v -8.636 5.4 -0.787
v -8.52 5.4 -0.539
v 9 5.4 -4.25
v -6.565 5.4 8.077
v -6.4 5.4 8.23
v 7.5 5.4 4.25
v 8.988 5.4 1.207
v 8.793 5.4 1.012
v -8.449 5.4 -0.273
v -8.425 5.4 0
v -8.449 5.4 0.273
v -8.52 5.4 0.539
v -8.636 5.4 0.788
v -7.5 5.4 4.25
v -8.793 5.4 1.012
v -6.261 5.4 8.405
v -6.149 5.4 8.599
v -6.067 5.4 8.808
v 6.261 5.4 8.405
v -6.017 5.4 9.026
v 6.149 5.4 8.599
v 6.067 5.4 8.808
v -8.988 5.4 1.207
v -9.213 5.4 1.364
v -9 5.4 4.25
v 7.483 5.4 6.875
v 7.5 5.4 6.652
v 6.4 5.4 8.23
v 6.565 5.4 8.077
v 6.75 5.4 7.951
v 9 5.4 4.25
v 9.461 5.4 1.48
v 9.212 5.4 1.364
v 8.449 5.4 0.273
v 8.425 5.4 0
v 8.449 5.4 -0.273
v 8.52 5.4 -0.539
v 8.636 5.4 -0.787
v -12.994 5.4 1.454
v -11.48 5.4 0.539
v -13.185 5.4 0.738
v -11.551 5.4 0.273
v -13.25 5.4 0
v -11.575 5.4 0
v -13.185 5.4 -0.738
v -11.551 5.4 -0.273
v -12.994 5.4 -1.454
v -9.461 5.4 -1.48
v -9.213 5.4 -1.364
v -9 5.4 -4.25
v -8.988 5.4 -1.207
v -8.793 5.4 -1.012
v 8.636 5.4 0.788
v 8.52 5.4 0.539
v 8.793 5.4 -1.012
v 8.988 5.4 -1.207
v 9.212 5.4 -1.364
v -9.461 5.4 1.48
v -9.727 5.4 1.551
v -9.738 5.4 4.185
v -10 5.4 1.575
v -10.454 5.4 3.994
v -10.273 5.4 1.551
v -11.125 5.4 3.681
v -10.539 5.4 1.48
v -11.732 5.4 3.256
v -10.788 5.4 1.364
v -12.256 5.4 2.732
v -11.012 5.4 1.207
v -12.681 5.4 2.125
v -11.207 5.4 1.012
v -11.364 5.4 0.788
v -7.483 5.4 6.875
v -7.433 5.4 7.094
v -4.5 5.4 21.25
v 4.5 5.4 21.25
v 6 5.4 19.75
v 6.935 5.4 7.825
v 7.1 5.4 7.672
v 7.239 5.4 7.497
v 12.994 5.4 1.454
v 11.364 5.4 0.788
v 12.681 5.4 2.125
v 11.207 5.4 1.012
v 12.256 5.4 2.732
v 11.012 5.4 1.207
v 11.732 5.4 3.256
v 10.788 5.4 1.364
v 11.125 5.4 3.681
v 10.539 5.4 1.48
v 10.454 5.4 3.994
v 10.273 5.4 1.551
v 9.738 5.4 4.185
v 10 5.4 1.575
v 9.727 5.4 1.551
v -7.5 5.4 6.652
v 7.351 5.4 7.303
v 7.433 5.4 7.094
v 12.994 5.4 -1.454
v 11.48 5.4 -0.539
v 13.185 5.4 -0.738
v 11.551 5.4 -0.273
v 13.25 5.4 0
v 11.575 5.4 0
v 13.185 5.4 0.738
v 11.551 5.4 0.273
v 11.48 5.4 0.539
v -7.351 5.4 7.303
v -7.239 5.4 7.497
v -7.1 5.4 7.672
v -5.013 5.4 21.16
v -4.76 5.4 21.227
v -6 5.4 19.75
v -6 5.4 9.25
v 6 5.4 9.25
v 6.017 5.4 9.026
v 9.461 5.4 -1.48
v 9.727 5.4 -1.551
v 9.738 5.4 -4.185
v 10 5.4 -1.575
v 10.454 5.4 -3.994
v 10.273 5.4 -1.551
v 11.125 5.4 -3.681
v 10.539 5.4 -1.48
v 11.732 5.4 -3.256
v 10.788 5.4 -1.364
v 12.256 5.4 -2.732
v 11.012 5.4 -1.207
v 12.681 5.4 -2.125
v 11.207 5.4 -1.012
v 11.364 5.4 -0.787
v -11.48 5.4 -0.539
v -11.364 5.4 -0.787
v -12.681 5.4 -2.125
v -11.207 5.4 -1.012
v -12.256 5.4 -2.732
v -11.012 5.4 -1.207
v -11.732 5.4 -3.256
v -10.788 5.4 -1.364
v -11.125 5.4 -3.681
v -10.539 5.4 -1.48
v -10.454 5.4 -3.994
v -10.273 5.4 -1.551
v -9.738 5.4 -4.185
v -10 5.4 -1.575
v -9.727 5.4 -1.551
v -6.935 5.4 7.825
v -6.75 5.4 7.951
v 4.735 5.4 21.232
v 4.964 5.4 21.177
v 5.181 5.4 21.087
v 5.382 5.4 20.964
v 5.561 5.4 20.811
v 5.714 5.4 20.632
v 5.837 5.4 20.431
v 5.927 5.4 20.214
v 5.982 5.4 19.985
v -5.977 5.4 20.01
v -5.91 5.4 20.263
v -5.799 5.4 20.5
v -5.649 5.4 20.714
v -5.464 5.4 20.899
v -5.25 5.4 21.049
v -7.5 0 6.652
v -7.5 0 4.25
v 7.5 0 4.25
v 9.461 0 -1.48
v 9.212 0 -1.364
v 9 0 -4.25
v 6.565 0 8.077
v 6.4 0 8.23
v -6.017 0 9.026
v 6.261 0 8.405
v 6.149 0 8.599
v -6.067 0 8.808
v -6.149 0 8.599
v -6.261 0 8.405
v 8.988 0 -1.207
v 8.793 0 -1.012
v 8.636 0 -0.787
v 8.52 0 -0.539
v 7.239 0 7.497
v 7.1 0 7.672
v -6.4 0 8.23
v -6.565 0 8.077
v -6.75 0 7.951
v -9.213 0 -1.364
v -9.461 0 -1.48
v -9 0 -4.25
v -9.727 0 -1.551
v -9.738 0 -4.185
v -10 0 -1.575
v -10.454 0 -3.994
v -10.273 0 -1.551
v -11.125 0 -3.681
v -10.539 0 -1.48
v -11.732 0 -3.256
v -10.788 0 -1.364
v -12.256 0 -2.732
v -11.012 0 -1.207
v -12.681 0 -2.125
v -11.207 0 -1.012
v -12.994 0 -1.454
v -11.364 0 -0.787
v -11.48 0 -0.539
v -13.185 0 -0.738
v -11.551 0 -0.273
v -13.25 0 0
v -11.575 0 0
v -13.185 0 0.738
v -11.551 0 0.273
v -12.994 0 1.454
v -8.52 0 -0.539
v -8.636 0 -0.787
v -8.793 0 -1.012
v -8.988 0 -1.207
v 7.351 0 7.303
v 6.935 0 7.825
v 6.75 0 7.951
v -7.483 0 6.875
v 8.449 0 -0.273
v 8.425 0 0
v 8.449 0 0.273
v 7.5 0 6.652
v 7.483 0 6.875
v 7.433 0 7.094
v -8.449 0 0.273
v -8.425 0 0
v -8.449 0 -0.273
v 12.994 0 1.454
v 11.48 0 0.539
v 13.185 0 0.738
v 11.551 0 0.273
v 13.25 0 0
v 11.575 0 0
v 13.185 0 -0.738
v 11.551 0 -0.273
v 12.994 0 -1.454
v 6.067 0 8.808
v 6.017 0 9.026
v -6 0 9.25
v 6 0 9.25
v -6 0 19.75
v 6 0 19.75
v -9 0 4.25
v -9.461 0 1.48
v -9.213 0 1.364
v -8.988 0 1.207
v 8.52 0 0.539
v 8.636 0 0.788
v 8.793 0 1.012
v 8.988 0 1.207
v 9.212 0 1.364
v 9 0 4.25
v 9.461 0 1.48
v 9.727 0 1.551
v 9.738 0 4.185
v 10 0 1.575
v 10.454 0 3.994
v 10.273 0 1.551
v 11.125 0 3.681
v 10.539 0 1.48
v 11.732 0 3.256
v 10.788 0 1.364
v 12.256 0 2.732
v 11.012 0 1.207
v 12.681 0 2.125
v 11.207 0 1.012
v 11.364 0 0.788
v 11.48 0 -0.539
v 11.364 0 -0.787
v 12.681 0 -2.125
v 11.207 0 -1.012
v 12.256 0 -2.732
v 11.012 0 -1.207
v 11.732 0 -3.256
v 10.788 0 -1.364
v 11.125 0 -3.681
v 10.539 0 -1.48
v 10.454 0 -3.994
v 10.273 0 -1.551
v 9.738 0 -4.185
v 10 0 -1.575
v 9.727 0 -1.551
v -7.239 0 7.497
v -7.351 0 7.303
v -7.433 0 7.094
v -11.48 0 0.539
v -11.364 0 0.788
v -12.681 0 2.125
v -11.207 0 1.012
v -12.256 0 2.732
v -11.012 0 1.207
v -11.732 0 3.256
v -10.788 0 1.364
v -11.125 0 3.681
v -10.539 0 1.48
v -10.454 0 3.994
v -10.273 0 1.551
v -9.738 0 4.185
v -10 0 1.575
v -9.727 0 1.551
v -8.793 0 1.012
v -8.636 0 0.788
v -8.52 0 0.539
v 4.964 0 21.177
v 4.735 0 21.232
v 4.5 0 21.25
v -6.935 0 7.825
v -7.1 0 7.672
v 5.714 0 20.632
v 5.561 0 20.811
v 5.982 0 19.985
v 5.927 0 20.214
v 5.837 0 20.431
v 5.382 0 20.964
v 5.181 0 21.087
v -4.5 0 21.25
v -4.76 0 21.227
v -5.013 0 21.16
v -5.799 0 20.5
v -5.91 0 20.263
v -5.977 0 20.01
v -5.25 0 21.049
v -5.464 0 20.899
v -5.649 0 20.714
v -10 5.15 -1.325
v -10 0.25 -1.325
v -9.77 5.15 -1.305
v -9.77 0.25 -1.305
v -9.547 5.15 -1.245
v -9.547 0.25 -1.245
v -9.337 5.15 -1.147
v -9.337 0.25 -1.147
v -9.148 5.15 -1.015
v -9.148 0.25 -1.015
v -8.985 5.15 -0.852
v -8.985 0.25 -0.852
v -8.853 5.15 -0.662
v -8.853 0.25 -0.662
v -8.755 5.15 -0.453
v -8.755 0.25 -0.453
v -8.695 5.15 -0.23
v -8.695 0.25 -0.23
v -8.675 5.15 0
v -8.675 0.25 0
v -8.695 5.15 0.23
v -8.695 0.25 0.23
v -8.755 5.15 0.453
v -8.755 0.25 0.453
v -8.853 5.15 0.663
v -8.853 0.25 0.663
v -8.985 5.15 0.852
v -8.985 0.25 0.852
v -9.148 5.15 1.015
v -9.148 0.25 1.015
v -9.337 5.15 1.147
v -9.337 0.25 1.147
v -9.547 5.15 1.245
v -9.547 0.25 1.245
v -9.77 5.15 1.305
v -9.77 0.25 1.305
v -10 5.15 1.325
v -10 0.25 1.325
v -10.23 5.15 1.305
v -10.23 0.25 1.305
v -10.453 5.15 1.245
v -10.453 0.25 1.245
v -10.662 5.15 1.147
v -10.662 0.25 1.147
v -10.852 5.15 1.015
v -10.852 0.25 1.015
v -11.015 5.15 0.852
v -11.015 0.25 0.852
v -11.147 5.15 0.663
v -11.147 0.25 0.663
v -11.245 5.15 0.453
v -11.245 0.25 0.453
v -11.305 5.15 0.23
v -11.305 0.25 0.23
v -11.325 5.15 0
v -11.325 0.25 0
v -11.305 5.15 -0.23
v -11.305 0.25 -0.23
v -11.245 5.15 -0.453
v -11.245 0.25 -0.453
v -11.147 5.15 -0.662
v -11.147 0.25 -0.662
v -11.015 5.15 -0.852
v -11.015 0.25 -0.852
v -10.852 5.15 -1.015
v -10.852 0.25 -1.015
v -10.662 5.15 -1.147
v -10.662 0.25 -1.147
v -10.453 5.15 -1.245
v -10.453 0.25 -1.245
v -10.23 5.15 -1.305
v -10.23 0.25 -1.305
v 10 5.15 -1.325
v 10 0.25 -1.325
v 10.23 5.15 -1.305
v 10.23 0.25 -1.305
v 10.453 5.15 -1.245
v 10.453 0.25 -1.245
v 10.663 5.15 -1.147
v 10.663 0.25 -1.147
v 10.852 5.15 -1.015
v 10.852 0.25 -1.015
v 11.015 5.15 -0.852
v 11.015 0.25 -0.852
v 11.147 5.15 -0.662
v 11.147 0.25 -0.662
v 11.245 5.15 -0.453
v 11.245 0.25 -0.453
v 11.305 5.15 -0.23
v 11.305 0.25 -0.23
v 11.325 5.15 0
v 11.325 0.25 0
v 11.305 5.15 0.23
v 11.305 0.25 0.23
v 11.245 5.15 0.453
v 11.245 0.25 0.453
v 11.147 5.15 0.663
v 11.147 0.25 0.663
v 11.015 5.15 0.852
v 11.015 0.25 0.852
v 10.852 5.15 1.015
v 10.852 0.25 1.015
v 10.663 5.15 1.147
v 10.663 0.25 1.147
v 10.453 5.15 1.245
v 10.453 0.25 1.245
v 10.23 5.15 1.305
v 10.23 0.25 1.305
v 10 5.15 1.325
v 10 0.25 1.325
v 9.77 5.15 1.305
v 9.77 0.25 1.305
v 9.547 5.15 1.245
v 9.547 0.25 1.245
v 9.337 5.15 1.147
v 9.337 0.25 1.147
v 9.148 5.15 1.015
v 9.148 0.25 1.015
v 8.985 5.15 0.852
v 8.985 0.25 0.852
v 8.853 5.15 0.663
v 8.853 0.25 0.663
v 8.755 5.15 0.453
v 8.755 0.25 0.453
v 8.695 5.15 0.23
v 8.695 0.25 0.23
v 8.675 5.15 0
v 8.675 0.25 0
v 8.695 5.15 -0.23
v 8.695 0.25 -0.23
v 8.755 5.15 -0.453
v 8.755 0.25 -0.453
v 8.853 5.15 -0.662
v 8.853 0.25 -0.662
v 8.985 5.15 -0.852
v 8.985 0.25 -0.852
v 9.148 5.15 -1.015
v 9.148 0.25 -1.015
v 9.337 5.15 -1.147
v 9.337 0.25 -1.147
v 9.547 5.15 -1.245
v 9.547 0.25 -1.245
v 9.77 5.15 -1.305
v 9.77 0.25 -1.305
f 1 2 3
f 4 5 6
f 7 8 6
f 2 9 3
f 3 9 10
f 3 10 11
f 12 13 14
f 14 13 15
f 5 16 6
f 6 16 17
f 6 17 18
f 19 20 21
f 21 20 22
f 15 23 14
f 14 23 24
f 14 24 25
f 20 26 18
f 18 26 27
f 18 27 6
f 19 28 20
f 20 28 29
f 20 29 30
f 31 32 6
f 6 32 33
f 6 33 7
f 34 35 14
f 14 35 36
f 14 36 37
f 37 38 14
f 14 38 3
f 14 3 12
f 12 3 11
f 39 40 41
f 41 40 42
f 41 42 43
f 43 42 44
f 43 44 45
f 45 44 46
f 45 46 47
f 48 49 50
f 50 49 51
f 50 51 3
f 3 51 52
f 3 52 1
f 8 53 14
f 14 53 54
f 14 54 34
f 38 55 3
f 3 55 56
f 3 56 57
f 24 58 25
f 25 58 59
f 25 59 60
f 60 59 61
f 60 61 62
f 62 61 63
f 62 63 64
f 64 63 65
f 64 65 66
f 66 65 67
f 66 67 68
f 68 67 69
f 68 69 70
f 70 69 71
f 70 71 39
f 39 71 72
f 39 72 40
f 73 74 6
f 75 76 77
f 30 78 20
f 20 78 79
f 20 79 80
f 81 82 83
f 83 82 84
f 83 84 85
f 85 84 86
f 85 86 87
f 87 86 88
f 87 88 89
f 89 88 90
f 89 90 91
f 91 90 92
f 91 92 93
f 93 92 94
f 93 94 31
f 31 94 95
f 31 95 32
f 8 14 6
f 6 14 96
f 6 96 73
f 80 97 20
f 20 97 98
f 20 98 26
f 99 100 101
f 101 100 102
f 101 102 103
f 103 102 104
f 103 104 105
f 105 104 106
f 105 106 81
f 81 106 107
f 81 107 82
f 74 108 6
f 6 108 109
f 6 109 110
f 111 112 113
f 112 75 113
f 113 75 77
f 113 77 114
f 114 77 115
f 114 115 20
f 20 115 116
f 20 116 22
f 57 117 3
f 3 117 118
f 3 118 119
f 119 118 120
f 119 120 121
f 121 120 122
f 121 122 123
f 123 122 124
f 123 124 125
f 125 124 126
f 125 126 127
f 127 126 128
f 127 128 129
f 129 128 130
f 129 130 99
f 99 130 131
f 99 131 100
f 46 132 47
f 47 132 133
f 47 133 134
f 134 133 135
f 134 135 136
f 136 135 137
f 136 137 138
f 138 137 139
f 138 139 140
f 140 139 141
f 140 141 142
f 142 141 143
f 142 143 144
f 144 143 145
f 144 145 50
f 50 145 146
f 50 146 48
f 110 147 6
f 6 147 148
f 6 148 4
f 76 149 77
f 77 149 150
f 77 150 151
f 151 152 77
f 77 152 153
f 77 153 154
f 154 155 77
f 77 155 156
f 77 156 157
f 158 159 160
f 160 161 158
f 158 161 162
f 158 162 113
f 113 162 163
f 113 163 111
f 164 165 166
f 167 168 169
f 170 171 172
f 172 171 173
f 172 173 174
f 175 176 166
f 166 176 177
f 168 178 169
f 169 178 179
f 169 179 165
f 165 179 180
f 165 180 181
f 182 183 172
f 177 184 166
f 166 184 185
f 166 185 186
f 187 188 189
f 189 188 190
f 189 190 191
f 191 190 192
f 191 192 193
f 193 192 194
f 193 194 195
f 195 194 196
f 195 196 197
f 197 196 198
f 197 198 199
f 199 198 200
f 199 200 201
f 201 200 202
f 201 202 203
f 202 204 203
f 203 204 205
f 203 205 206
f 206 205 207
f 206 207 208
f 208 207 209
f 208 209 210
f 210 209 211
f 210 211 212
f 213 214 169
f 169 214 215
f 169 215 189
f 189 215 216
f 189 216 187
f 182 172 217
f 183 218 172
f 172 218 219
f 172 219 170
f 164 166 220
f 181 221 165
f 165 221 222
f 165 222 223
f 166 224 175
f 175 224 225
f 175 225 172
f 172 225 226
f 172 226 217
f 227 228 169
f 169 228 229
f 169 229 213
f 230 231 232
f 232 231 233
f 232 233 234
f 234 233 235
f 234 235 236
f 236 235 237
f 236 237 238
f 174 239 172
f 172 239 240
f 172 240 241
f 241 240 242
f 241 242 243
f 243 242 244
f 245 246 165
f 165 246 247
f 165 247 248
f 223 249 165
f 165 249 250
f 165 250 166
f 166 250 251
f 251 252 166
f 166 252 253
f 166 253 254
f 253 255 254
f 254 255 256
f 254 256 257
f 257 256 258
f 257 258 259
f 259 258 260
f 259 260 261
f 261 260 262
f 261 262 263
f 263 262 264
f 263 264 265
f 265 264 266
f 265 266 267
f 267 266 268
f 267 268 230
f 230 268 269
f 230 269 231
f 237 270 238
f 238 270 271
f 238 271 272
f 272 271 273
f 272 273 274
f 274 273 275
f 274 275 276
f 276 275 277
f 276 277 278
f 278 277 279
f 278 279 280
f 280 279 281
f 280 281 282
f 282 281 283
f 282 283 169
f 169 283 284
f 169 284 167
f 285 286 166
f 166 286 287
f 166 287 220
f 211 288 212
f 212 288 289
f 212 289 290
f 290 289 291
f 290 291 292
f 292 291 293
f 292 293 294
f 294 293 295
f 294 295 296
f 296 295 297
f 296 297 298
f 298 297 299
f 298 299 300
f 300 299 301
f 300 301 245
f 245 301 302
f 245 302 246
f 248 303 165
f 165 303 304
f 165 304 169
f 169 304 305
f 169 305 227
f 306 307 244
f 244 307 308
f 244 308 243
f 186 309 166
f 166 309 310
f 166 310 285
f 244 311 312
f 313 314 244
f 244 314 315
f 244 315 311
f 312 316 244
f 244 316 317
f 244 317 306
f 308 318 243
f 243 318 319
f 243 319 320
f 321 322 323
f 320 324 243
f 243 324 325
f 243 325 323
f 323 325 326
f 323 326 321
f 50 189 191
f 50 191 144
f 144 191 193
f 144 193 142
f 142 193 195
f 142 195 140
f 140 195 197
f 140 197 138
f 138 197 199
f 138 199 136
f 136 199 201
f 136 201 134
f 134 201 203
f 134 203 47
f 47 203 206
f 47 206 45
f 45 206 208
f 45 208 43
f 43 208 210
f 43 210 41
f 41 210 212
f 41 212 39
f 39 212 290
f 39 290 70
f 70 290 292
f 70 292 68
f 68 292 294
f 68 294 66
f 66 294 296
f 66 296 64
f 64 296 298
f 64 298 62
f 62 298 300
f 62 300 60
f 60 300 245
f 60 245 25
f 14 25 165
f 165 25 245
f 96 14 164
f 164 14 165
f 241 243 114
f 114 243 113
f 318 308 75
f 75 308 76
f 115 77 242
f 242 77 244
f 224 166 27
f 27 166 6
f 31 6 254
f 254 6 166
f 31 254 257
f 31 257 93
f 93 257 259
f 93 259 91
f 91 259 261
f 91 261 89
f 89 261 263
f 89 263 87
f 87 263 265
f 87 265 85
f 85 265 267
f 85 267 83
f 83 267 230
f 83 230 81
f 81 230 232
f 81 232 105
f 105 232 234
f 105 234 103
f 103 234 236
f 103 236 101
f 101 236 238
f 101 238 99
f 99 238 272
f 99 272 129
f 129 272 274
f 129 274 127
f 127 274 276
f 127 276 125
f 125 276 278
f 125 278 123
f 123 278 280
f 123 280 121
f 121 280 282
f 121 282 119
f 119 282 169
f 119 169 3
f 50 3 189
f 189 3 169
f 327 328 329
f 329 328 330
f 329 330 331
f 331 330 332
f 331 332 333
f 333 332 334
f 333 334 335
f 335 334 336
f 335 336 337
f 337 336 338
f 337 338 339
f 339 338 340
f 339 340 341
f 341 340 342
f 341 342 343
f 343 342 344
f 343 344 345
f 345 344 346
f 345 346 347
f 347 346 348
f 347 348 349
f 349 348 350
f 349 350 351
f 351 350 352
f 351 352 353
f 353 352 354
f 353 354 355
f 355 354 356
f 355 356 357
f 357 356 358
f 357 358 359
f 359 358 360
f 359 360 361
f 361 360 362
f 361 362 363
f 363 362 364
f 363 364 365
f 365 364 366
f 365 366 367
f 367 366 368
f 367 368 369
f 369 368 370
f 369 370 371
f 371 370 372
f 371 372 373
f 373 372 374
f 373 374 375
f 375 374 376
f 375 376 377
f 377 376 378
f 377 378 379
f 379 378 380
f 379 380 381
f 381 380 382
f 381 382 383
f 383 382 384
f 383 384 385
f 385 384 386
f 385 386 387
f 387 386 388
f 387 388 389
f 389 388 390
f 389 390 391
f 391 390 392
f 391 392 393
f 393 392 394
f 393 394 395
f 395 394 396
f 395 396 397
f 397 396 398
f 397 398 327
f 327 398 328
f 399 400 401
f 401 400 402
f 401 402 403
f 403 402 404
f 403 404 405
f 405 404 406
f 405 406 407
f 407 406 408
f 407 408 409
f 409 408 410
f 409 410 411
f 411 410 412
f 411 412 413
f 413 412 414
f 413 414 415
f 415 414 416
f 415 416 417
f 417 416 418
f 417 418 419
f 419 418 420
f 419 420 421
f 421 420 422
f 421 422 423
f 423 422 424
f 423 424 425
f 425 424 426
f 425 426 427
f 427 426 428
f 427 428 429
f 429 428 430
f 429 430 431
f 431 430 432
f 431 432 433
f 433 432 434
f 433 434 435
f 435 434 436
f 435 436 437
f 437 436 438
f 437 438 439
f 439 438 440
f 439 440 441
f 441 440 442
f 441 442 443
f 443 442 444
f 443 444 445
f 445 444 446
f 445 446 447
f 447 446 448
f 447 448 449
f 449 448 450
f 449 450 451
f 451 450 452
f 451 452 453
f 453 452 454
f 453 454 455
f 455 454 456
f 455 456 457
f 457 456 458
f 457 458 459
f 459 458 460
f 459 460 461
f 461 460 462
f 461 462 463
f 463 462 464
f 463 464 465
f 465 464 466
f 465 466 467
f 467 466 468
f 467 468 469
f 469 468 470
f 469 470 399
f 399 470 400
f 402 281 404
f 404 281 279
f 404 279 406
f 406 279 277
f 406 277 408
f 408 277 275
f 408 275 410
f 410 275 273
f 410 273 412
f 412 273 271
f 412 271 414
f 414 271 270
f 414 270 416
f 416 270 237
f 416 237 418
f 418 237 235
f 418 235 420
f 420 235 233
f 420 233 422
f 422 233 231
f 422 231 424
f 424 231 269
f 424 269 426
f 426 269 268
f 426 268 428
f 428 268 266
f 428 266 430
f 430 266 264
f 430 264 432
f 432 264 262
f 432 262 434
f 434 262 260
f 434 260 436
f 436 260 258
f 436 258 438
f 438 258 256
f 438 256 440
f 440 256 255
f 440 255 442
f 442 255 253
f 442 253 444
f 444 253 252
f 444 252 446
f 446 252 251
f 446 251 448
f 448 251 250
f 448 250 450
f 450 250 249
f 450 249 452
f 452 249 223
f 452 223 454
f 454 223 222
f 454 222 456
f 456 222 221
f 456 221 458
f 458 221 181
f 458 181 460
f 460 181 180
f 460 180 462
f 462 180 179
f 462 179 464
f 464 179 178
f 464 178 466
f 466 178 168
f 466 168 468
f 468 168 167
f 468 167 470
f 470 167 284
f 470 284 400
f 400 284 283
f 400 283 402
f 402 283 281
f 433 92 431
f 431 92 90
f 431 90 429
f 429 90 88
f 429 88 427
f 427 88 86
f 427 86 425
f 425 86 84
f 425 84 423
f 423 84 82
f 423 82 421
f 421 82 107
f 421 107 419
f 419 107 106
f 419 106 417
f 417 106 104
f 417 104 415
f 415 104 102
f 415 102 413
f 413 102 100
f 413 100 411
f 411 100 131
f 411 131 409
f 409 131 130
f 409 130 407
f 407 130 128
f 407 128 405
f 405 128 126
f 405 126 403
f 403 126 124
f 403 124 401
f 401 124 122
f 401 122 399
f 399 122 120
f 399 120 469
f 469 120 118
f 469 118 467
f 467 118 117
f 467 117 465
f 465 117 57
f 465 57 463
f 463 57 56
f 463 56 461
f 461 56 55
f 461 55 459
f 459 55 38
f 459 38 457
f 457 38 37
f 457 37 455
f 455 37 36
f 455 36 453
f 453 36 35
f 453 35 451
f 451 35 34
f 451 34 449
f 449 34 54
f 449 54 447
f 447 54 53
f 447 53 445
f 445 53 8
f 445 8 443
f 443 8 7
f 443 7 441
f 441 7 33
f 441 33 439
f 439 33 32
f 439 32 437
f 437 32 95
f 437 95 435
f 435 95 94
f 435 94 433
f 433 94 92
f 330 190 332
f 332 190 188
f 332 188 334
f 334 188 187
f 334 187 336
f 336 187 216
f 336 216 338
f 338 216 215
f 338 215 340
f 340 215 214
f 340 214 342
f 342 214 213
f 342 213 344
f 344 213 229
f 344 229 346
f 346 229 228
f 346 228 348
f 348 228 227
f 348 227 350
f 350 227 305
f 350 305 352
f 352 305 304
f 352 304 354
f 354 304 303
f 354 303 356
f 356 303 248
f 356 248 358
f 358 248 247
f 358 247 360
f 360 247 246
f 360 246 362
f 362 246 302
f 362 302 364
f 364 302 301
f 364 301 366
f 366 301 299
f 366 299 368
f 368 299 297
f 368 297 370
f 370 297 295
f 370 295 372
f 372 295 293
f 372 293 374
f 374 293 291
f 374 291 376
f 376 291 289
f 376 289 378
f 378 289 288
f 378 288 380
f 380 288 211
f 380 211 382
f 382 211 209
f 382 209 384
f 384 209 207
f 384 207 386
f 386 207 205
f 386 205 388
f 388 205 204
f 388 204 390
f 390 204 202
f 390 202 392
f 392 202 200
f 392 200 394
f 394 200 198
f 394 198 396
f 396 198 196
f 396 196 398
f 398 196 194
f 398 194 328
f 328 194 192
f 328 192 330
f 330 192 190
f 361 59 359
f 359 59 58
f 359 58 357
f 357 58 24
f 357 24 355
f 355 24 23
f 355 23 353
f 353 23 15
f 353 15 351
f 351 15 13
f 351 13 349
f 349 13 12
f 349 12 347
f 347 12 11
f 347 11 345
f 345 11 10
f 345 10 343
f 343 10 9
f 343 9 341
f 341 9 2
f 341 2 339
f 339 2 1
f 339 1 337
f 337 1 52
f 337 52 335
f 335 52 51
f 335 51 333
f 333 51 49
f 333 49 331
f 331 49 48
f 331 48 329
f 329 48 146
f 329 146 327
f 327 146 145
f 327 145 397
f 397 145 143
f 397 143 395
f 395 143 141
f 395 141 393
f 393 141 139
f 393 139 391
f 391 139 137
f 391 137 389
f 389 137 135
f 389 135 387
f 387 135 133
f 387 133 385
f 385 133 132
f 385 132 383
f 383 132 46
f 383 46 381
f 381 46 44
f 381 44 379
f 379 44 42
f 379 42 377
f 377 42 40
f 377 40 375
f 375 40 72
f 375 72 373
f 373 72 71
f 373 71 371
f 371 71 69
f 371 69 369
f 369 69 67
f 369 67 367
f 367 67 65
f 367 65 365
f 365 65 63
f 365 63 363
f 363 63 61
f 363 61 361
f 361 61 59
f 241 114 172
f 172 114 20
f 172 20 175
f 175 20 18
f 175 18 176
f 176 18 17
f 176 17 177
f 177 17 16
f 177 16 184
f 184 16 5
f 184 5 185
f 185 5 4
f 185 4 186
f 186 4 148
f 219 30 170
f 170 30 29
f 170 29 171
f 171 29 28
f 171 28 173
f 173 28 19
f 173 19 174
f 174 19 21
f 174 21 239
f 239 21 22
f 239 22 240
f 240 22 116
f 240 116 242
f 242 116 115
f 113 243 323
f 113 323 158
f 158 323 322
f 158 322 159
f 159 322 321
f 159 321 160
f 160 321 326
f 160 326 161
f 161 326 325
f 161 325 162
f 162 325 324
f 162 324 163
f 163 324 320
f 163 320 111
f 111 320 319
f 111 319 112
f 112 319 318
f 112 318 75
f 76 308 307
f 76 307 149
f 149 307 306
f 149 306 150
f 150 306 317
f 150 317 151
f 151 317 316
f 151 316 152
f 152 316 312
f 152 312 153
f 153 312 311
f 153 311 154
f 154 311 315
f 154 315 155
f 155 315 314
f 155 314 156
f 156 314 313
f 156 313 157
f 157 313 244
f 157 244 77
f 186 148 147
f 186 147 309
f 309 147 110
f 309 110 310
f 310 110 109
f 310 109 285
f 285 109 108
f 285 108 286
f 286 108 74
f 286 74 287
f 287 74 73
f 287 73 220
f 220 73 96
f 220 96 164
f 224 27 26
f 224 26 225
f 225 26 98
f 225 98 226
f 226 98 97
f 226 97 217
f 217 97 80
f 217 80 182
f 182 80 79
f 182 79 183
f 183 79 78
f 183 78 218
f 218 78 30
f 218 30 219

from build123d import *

# Parameters (mm, degrees)
SKETCH1_R           = 1.325
BOSS_EXTRUDE1_DEPTH = 5.4
CHAMFER2_SIZE       = 0.25
FILLET4_START       = -1
FILLET4_DEPTH       = 7
FILLET4_2_DEPTH     = 5.4
FILLET5_R           = 1.5


with BuildPart() as part:
    # Sketch1 → Boss-Extrude1 (new body)
    with BuildSketch(Plane(origin=(0, 0, 0), x_dir=(1, 0, 0), z_dir=(0, 1, 0))):
        with BuildLine():
            Line((-6, -7.75), (-6, -21.25))
            Line((-6, -21.25), (6, -21.25))
            Line((6, -21.25), (6, -7.75))
            Line((6, -7.75), (7.5, -7.75))
            Line((7.5, -7.75), (7.5, -4.25))
            Line((7.5, -4.25), (9, -4.25))
            ThreePointArc((9, -4.25), (13.25, 0), (9, 4.25))
            Line((9, 4.25), (-9, 4.25))
            ThreePointArc((-9, 4.25), (-13.25, 0), (-9, -4.25))
            Line((-9, -4.25), (-7.5, -4.25))
            Line((-7.5, -4.25), (-7.5, -7.75))
            Line((-7.5, -7.75), (-6, -7.75))
        make_face()
        with Locations(Location((-10, 0, 0), (0, 0, 90))):
            Circle(SKETCH1_R, mode=Mode.SUBTRACT)
        with Locations(Location((10, 0, 0), (0, 0, 90))):
            Circle(SKETCH1_R, mode=Mode.SUBTRACT)
    extrude(amount=BOSS_EXTRUDE1_DEPTH)

    # Chamfer2
    chamfer2_edges = [part.edges().sort_by_distance(p)[0] for p in [
        (-10, 0, 1.325),
        (-10, 5.4, 1.325),
        (10, 0, 1.325),
        (10, 5.4, 1.325),
    ]]
    chamfer(chamfer2_edges, length=CHAMFER2_SIZE)

    # Fillet4: read off the stored shape, not the designer's step
    # Fillet4 outline → Fillet4 (cut)
    with BuildSketch(Plane(origin=(0, 0, 0), x_dir=(1, 0, 0), z_dir=(0, 1, 0)).offset(FILLET4_START)):
        with BuildLine():
            ThreePointArc((6, -19.75), (5.560660172, -20.810660172), (4.5, -21.25))
            Line((4.5, -21.25), (6, -21.25))
            Line((6, -21.25), (6, -19.75))
        make_face()
        with BuildLine():
            ThreePointArc((-4.5, -21.25), (-5.560660172, -20.810660172), (-6, -19.75))
            Line((-6, -19.75), (-6, -21.25))
            Line((-6, -21.25), (-4.5, -21.25))
        make_face()
    extrude(amount=FILLET4_DEPTH, mode=Mode.SUBTRACT)

    # Fillet4 2 outline → Fillet4 2 (add)
    with BuildSketch(Plane(origin=(0, 0, 0), x_dir=(1, 0, 0), z_dir=(0, 1, 0))):
        with BuildLine():
            Line((6, -7.75), (6, -9.25))
            ThreePointArc((6, -9.25), (6.439339828, -8.189339828), (7.5, -7.75))
            Line((7.5, -7.75), (6, -7.75))
        make_face()
        with BuildLine():
            ThreePointArc((-7.5, -7.75), (-6.439339828, -8.189339828), (-6, -9.25))
            Line((-6, -9.25), (-6, -7.75))
            Line((-6, -7.75), (-7.5, -7.75))
        make_face()
    extrude(amount=FILLET4_2_DEPTH)

    # Fillet5
    fillet5_edges = [part.edges().sort_by_distance(p)[0] for p in [
        (7.5, 2.7, 7.75),
        (-7.5, 2.7, 7.75),
    ]]
    fillet(fillet5_edges, radius=FILLET5_R)


solid = part.part
